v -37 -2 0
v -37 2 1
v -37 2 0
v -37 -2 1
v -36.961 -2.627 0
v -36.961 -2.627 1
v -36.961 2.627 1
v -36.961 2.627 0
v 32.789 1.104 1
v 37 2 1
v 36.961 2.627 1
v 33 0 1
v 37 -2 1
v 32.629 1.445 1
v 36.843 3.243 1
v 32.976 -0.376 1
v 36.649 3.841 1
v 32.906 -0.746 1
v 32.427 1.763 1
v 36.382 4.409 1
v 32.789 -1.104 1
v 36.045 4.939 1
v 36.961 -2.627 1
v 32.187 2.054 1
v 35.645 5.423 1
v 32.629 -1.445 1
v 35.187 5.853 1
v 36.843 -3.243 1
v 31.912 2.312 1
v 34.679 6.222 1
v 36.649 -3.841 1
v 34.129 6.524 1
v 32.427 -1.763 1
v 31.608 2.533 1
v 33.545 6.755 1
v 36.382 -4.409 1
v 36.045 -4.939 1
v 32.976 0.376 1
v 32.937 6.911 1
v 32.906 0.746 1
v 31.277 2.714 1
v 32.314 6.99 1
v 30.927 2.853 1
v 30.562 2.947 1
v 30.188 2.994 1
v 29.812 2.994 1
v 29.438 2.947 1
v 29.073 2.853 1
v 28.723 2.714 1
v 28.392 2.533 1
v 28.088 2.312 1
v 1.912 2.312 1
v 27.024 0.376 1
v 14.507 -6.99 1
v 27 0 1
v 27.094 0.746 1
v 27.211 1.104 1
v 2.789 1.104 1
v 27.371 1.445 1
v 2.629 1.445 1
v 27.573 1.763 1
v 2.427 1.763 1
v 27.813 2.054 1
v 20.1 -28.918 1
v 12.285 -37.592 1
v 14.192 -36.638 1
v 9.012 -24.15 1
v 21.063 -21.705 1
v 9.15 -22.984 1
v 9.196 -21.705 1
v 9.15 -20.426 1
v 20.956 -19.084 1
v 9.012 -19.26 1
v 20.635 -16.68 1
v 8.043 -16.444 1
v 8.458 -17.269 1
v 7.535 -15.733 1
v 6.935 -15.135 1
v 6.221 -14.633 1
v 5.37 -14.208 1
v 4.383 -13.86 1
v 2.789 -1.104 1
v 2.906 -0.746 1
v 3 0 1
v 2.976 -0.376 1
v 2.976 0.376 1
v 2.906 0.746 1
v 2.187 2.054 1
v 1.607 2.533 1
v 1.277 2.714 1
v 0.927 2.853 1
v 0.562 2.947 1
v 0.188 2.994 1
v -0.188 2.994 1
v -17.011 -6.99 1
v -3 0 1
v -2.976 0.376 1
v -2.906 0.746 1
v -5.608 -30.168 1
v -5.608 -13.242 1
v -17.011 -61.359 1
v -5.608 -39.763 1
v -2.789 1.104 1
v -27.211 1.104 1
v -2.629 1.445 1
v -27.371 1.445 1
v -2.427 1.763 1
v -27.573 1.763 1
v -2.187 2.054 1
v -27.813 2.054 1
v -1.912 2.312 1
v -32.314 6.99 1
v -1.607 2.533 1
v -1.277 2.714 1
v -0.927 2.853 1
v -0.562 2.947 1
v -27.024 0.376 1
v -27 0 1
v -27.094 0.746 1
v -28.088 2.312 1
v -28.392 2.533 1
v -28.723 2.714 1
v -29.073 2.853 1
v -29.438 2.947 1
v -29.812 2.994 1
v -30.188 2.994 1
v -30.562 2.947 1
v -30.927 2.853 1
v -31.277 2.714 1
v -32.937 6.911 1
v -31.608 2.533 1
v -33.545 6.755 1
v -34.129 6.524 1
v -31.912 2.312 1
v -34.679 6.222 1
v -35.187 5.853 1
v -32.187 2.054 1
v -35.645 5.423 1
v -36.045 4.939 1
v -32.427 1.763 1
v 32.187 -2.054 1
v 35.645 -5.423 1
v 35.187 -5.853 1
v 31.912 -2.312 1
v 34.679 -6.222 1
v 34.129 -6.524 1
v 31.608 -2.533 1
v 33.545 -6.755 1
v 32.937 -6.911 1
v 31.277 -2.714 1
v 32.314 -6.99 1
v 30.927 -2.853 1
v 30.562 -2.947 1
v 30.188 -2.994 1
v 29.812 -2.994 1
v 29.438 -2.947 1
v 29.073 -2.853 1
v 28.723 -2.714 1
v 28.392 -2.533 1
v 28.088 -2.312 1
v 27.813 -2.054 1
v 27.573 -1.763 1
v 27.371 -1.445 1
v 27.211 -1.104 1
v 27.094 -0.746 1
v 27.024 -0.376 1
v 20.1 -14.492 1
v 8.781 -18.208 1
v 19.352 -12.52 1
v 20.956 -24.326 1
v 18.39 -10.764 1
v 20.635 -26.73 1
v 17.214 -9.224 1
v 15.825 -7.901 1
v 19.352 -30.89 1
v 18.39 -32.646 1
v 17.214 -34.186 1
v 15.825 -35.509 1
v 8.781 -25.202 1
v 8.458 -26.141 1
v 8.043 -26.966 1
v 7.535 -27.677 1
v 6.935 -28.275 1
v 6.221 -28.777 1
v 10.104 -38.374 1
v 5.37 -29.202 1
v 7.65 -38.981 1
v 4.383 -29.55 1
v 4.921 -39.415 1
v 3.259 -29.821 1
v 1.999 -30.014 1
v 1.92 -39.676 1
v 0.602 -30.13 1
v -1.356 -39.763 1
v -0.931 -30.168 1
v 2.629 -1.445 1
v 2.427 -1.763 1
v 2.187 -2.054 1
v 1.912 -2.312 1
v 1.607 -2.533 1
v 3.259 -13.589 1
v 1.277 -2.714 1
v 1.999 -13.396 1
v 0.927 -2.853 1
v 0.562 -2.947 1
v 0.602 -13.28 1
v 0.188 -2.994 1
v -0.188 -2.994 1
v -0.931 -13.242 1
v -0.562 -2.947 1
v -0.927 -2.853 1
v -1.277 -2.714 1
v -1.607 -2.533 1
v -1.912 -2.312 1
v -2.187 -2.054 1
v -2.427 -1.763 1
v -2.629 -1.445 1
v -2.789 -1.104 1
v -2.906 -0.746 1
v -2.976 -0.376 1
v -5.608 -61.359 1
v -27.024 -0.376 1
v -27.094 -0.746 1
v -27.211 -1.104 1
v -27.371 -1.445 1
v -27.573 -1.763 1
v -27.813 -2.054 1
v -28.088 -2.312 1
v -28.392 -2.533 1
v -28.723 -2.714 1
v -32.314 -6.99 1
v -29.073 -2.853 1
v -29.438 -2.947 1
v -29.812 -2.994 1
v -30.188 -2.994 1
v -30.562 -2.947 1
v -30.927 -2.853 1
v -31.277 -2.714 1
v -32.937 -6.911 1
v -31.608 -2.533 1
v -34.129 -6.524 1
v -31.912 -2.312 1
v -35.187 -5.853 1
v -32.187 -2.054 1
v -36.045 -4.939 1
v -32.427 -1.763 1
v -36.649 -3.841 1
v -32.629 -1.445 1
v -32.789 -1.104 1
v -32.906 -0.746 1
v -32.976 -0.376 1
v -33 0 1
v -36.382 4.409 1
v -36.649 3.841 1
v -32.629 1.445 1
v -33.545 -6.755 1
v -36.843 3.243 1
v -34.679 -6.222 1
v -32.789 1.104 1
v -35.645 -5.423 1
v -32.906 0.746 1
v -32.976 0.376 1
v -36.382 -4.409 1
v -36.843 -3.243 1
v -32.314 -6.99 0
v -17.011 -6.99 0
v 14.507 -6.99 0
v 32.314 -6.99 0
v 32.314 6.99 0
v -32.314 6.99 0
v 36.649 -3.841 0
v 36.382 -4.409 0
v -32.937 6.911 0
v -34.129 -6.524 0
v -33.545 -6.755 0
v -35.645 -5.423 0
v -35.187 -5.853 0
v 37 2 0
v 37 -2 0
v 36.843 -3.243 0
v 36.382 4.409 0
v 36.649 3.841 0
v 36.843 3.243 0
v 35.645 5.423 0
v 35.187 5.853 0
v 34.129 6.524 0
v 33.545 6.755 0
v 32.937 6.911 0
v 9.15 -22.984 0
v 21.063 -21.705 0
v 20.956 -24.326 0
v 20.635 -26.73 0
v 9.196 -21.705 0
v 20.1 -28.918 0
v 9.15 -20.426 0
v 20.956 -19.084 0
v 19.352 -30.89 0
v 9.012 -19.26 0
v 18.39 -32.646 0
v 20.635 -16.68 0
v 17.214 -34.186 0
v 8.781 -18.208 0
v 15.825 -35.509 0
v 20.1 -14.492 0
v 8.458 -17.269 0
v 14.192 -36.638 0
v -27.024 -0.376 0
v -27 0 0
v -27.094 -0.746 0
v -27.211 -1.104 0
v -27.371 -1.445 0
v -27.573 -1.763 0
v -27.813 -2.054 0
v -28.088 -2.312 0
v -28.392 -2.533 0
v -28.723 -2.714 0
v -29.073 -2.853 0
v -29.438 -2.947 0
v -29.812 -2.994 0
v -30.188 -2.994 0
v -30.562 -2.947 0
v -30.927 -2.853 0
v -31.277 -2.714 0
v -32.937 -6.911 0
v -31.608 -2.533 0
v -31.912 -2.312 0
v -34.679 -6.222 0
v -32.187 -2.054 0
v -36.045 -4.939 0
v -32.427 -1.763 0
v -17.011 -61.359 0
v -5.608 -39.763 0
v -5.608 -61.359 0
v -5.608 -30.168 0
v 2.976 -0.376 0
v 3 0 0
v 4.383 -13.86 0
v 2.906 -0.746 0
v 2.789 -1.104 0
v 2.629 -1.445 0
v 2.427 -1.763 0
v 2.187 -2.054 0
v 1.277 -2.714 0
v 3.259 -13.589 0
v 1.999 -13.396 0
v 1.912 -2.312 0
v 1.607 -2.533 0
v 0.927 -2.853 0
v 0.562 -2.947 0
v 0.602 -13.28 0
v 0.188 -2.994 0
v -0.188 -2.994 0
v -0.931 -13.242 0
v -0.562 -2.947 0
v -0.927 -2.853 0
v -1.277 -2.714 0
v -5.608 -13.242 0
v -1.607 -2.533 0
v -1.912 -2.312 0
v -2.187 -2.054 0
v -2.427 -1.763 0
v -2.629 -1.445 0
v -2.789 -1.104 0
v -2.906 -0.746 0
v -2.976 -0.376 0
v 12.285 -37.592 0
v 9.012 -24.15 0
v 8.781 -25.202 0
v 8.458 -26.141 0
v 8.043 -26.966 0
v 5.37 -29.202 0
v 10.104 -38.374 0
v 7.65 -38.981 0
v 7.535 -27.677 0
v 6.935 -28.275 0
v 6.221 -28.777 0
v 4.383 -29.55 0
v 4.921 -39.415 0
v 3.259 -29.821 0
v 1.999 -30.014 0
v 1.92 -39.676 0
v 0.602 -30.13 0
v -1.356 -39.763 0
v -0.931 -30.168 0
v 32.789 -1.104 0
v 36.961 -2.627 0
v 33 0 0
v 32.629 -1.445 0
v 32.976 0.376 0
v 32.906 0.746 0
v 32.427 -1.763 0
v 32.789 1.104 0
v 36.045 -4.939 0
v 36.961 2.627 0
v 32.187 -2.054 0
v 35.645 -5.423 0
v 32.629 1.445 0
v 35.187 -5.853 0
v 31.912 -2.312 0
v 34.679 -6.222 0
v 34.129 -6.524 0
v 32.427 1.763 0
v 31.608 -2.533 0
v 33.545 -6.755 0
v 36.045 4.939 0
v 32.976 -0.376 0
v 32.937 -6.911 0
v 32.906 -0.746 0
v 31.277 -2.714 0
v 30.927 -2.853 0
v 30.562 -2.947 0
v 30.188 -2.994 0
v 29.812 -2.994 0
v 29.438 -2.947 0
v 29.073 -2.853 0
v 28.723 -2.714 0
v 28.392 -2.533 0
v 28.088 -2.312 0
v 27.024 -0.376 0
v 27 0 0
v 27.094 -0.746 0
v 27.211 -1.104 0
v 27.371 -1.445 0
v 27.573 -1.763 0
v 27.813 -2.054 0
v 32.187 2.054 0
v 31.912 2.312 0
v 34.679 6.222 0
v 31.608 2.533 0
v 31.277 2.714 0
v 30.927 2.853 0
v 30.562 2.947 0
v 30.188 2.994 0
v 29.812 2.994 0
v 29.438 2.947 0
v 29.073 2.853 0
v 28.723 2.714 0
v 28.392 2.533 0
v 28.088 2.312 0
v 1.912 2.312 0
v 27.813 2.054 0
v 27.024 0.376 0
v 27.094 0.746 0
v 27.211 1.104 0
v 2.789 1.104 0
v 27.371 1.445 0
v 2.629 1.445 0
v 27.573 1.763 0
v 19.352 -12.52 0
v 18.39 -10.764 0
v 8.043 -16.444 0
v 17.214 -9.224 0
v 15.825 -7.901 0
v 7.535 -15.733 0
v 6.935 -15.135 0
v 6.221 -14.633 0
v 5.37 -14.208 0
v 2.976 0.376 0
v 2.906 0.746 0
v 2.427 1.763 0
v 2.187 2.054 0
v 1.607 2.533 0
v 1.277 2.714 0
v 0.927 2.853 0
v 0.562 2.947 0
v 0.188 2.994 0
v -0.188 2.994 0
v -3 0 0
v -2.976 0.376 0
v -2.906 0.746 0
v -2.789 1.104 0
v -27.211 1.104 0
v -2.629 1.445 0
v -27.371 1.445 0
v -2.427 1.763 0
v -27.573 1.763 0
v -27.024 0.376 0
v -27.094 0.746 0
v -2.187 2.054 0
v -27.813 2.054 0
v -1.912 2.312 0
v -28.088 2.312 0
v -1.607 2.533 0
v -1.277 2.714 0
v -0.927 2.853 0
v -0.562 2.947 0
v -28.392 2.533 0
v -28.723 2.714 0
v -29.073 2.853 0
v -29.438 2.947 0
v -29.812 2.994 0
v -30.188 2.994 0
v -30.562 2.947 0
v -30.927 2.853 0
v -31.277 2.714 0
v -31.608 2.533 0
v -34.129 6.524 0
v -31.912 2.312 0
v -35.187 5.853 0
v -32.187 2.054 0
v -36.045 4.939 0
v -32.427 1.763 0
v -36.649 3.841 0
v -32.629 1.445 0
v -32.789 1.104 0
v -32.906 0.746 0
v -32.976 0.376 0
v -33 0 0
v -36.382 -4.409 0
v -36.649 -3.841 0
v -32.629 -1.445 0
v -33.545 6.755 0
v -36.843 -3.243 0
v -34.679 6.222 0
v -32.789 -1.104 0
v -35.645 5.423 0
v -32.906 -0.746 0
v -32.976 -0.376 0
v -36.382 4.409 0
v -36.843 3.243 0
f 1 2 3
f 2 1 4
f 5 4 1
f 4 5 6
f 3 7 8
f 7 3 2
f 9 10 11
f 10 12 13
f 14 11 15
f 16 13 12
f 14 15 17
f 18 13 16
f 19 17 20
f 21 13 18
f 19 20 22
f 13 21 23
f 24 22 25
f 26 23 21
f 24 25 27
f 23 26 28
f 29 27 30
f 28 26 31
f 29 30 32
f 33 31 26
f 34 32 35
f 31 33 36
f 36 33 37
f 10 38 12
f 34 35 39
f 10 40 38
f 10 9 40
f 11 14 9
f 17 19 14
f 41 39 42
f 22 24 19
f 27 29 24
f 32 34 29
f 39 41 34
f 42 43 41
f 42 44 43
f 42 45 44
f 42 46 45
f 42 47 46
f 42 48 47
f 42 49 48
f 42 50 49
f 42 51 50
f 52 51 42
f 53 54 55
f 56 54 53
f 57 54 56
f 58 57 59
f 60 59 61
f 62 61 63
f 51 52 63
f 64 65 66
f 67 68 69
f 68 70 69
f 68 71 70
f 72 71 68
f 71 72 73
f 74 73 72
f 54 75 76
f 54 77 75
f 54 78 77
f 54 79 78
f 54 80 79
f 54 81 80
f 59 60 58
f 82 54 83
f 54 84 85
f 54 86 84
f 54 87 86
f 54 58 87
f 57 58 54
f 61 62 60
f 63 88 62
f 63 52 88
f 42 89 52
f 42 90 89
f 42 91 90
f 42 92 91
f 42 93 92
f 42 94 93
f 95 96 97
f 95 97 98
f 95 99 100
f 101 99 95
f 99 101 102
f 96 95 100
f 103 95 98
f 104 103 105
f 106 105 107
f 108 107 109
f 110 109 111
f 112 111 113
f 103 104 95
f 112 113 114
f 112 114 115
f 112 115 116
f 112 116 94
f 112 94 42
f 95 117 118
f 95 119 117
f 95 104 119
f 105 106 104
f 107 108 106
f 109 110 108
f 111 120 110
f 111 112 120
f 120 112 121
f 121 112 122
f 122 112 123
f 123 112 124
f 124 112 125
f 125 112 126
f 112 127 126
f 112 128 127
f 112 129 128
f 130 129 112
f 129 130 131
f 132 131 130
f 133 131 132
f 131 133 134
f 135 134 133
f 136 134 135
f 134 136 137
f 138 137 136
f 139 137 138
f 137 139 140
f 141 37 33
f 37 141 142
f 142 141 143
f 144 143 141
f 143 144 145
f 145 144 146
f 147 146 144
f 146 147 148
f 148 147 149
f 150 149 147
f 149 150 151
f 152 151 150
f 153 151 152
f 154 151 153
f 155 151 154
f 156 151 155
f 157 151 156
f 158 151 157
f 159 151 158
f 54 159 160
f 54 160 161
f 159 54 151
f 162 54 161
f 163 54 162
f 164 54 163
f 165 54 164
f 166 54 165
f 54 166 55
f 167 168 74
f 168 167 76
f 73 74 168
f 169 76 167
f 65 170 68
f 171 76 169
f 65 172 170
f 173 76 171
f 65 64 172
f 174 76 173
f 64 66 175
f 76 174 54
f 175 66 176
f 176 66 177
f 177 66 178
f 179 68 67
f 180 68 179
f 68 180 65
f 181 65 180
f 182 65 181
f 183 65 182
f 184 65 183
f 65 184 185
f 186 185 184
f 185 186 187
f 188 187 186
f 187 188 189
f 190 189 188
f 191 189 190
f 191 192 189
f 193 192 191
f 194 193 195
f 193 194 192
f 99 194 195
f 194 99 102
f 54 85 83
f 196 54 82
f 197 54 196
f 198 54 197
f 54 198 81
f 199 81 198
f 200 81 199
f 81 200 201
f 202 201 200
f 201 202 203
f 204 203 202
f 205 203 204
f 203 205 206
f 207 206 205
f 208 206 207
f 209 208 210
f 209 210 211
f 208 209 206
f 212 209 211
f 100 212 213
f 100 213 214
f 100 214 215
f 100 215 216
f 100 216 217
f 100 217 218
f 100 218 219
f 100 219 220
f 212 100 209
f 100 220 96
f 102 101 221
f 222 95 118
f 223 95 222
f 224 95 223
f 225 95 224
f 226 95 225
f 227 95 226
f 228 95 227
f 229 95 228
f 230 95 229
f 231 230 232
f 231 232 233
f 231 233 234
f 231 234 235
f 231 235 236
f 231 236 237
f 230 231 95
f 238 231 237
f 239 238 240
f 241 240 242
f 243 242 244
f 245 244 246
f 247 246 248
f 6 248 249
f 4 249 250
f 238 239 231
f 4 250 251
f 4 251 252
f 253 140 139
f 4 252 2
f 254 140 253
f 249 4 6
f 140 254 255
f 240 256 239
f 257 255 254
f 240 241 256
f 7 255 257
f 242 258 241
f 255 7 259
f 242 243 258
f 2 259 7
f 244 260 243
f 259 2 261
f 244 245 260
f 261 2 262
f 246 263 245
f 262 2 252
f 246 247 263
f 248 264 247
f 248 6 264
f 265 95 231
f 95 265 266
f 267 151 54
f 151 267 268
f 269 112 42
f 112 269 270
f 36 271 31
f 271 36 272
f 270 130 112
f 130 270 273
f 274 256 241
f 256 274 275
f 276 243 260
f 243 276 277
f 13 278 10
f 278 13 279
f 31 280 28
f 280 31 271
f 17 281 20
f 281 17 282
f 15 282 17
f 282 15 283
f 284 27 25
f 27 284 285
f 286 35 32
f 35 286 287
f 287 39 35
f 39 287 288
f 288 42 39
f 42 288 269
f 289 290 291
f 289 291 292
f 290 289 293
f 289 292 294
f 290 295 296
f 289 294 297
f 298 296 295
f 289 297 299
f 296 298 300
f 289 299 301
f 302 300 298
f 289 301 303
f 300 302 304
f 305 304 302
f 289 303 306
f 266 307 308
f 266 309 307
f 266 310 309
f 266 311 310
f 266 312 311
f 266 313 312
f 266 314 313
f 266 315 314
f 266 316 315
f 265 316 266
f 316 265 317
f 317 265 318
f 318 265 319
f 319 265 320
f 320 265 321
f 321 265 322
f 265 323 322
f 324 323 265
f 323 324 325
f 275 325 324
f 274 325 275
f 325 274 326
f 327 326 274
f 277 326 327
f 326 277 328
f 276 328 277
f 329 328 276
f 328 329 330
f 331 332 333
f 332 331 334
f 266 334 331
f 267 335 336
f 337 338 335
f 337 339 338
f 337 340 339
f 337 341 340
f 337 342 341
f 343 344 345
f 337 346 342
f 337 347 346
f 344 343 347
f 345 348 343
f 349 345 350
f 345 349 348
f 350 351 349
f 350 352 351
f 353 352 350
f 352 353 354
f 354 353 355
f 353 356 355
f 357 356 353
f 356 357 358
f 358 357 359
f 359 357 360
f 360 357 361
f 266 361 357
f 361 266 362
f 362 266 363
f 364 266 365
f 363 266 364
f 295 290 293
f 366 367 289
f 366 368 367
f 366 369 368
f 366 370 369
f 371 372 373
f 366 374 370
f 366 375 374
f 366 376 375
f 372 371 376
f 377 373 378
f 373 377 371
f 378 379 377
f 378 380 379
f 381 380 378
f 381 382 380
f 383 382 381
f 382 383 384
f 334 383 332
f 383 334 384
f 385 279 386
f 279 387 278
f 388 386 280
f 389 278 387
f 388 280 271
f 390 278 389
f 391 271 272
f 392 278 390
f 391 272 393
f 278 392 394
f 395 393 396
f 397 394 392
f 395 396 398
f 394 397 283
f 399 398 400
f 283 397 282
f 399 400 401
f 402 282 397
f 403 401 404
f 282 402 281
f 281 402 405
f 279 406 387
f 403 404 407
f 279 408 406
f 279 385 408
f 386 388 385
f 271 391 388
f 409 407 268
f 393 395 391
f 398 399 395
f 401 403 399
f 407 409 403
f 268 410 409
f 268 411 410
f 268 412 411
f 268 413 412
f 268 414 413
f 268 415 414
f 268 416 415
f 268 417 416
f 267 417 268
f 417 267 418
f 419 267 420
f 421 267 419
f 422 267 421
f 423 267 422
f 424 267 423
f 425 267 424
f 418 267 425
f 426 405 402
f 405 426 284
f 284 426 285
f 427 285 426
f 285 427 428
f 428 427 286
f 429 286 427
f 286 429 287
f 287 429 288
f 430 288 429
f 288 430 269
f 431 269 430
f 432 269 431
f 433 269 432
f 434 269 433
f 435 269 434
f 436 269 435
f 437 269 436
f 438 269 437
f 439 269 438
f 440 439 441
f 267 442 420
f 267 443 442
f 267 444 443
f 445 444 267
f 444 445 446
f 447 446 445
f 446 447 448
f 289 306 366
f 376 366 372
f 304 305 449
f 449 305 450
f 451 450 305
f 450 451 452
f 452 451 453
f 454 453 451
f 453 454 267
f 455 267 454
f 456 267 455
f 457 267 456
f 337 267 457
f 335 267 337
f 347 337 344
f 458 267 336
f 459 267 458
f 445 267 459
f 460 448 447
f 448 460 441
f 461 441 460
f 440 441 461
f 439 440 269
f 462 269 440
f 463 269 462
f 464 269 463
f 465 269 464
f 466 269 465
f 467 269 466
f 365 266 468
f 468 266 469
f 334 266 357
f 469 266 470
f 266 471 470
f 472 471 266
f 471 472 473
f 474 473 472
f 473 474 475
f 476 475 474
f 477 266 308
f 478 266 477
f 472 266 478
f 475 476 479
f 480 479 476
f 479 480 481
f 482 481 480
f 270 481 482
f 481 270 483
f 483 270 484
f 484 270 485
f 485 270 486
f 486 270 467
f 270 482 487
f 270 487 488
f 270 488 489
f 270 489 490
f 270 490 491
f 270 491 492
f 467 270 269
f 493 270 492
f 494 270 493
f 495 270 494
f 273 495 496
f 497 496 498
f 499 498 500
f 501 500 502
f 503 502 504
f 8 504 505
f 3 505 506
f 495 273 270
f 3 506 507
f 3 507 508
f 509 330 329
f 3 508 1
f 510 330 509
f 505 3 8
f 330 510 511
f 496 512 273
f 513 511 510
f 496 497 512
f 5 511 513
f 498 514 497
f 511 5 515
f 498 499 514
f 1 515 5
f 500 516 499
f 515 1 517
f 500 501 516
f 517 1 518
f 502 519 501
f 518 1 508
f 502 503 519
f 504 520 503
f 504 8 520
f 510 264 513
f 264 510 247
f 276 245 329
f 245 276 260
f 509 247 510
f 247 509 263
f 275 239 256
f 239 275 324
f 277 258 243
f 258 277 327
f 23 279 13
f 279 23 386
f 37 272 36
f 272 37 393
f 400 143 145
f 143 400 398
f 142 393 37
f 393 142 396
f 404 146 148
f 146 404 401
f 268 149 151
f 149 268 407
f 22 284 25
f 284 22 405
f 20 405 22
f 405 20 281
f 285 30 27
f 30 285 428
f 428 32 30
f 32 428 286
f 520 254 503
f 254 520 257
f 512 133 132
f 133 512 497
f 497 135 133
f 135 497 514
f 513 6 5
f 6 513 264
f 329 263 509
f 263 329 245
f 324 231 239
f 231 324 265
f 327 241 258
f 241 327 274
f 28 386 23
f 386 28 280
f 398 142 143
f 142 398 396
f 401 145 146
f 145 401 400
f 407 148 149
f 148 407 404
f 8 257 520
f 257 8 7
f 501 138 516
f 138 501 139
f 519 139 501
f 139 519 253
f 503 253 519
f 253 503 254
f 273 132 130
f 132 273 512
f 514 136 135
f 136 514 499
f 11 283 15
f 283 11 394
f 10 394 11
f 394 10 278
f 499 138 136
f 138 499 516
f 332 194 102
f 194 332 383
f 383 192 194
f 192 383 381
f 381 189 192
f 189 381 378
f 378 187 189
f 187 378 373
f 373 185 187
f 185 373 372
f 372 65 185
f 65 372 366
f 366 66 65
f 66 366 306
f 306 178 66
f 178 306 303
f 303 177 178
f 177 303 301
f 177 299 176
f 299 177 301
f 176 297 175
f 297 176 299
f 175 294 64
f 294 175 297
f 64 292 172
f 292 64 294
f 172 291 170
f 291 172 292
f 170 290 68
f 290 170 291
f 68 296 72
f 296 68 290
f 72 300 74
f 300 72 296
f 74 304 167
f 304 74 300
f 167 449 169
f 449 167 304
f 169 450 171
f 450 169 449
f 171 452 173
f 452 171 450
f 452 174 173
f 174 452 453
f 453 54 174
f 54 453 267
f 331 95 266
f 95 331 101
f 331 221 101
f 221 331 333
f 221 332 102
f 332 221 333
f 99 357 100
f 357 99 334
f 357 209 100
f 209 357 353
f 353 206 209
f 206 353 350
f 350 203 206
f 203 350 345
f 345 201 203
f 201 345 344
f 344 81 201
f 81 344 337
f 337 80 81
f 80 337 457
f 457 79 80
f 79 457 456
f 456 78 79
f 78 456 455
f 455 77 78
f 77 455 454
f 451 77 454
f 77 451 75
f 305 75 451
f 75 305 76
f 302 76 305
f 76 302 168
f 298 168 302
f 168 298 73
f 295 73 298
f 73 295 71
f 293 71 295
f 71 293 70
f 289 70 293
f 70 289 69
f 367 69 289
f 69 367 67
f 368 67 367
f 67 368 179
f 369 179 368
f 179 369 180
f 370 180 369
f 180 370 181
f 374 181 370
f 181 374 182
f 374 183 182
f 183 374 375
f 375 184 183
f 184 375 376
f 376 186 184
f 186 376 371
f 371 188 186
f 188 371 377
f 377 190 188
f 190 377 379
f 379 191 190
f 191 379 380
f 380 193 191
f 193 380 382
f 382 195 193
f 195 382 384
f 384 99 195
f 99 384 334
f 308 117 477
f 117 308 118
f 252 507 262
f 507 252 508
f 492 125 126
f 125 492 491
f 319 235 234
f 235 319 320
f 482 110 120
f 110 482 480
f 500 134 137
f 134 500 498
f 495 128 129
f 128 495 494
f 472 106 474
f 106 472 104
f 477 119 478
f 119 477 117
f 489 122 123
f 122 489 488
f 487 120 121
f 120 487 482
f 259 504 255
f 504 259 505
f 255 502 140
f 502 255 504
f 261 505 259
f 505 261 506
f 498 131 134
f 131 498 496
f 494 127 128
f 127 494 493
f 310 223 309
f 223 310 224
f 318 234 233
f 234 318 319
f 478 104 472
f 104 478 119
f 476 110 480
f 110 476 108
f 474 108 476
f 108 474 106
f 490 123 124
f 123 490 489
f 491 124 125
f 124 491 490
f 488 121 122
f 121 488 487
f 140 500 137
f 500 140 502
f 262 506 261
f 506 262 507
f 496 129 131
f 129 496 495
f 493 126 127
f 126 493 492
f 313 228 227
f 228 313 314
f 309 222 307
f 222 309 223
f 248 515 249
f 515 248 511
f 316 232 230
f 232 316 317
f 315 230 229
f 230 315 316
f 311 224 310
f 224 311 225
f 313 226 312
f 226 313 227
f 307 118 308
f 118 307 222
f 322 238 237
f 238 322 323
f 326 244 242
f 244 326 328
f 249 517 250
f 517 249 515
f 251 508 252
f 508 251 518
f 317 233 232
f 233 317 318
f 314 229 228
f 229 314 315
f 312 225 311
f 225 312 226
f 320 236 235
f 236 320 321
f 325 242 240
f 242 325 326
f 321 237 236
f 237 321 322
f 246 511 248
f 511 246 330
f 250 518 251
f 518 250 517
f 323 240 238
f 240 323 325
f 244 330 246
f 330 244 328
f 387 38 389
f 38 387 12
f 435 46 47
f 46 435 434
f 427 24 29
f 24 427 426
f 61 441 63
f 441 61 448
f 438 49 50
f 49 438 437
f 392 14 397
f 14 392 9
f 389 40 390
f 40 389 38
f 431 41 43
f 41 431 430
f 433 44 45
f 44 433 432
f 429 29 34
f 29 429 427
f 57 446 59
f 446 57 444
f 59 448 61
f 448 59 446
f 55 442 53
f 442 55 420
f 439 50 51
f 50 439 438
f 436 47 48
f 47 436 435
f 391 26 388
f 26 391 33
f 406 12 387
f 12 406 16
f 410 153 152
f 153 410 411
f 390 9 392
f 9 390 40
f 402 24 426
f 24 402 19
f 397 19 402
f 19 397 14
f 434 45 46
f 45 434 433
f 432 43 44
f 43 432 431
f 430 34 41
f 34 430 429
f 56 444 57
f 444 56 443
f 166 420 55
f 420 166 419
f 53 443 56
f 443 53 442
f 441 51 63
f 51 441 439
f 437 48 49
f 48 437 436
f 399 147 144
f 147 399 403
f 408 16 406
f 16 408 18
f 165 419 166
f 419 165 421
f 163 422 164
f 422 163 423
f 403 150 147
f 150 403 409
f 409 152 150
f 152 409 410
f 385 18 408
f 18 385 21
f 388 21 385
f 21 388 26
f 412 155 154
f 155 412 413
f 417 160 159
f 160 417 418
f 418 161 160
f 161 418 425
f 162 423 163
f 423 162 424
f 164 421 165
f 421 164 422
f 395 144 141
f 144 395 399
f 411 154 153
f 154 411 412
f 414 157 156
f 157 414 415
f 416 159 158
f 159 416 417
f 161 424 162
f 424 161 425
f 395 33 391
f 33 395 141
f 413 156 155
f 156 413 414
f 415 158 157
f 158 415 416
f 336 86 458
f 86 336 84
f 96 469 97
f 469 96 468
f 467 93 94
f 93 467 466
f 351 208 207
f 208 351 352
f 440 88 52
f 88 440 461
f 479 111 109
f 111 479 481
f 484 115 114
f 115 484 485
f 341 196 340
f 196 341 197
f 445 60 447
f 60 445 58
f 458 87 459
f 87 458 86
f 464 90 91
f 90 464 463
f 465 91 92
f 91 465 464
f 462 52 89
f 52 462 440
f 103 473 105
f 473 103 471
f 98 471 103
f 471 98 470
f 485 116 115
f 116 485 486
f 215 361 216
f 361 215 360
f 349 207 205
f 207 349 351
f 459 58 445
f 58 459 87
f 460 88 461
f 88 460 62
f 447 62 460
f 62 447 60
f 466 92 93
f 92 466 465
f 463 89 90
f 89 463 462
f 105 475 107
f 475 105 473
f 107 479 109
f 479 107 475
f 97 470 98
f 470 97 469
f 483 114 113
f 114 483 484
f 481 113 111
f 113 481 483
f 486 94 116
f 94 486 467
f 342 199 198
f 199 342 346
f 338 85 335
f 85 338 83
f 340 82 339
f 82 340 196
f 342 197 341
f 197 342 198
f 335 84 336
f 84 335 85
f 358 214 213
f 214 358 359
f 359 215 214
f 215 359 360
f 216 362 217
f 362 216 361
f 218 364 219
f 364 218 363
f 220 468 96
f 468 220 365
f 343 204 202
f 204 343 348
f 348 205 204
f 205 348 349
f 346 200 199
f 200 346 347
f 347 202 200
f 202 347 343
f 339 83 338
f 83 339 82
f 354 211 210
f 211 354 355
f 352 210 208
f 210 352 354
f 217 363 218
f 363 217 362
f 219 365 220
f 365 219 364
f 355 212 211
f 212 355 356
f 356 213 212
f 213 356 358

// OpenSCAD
$fn = 50;


difference() {
	union() {
		translate(v = [0, 0, 0]) {
			rotate(a = [0, 0, 0]) {
				hull() {
					translate(v = [-32.0000000000, 2.0000000000, 0]) {
						rotate(a = [0, 0, 0]) {
							translate(v = [0, 0, 0]) {
								rotate(a = [0, 0, 0]) {
									cylinder(h = 1, r = 5);
								}
							}
						}
					}
					translate(v = [32.0000000000, 2.0000000000, 0]) {
						rotate(a = [0, 0, 0]) {
							translate(v = [0, 0, 0]) {
								rotate(a = [0, 0, 0]) {
									cylinder(h = 1, r = 5);
								}
							}
						}
					}
					translate(v = [-32.0000000000, -2.0000000000, 0]) {
						rotate(a = [0, 0, 0]) {
							translate(v = [0, 0, 0]) {
								rotate(a = [0, 0, 0]) {
									cylinder(h = 1, r = 5);
								}
							}
						}
					}
					translate(v = [32.0000000000, -2.0000000000, 0]) {
						rotate(a = [0, 0, 0]) {
							translate(v = [0, 0, 0]) {
								rotate(a = [0, 0, 0]) {
									cylinder(h = 1, r = 5);
								}
							}
						}
					}
				}
			}
		}
		translate(v = [0, -5, 0]) {
			rotate(a = [0, 0, 0]) {
				linear_extrude(height = 1) {
					text(font = "DejaVu Sans Mono:style=Bold", halign = "center", size = 57.0000000000, text = "P", valign = "top");
				}
			}
		}
	}
	union() {
		translate(v = [-30.0000000000, 0.0000000000, -125.0000000000]) {
			rotate(a = [0, 0, 0]) {
				cylinder(h = 250, r = 3.0000000000);
			}
		}
		translate(v = [30.0000000000, 0.0000000000, -125.0000000000]) {
			rotate(a = [0, 0, 0]) {
				cylinder(h = 250, r = 3.0000000000);
			}
		}
		translate(v = [30.0000000000, 0.0000000000, -125.0000000000]) {
			rotate(a = [0, 0, 0]) {
				cylinder(h = 250, r = 3.0000000000);
			}
		}
		translate(v = [0, 0, -125.0000000000]) {
			rotate(a = [0, 0, 0]) {
				cylinder(h = 250, r = 3.0000000000);
			}
		}
	}
}
